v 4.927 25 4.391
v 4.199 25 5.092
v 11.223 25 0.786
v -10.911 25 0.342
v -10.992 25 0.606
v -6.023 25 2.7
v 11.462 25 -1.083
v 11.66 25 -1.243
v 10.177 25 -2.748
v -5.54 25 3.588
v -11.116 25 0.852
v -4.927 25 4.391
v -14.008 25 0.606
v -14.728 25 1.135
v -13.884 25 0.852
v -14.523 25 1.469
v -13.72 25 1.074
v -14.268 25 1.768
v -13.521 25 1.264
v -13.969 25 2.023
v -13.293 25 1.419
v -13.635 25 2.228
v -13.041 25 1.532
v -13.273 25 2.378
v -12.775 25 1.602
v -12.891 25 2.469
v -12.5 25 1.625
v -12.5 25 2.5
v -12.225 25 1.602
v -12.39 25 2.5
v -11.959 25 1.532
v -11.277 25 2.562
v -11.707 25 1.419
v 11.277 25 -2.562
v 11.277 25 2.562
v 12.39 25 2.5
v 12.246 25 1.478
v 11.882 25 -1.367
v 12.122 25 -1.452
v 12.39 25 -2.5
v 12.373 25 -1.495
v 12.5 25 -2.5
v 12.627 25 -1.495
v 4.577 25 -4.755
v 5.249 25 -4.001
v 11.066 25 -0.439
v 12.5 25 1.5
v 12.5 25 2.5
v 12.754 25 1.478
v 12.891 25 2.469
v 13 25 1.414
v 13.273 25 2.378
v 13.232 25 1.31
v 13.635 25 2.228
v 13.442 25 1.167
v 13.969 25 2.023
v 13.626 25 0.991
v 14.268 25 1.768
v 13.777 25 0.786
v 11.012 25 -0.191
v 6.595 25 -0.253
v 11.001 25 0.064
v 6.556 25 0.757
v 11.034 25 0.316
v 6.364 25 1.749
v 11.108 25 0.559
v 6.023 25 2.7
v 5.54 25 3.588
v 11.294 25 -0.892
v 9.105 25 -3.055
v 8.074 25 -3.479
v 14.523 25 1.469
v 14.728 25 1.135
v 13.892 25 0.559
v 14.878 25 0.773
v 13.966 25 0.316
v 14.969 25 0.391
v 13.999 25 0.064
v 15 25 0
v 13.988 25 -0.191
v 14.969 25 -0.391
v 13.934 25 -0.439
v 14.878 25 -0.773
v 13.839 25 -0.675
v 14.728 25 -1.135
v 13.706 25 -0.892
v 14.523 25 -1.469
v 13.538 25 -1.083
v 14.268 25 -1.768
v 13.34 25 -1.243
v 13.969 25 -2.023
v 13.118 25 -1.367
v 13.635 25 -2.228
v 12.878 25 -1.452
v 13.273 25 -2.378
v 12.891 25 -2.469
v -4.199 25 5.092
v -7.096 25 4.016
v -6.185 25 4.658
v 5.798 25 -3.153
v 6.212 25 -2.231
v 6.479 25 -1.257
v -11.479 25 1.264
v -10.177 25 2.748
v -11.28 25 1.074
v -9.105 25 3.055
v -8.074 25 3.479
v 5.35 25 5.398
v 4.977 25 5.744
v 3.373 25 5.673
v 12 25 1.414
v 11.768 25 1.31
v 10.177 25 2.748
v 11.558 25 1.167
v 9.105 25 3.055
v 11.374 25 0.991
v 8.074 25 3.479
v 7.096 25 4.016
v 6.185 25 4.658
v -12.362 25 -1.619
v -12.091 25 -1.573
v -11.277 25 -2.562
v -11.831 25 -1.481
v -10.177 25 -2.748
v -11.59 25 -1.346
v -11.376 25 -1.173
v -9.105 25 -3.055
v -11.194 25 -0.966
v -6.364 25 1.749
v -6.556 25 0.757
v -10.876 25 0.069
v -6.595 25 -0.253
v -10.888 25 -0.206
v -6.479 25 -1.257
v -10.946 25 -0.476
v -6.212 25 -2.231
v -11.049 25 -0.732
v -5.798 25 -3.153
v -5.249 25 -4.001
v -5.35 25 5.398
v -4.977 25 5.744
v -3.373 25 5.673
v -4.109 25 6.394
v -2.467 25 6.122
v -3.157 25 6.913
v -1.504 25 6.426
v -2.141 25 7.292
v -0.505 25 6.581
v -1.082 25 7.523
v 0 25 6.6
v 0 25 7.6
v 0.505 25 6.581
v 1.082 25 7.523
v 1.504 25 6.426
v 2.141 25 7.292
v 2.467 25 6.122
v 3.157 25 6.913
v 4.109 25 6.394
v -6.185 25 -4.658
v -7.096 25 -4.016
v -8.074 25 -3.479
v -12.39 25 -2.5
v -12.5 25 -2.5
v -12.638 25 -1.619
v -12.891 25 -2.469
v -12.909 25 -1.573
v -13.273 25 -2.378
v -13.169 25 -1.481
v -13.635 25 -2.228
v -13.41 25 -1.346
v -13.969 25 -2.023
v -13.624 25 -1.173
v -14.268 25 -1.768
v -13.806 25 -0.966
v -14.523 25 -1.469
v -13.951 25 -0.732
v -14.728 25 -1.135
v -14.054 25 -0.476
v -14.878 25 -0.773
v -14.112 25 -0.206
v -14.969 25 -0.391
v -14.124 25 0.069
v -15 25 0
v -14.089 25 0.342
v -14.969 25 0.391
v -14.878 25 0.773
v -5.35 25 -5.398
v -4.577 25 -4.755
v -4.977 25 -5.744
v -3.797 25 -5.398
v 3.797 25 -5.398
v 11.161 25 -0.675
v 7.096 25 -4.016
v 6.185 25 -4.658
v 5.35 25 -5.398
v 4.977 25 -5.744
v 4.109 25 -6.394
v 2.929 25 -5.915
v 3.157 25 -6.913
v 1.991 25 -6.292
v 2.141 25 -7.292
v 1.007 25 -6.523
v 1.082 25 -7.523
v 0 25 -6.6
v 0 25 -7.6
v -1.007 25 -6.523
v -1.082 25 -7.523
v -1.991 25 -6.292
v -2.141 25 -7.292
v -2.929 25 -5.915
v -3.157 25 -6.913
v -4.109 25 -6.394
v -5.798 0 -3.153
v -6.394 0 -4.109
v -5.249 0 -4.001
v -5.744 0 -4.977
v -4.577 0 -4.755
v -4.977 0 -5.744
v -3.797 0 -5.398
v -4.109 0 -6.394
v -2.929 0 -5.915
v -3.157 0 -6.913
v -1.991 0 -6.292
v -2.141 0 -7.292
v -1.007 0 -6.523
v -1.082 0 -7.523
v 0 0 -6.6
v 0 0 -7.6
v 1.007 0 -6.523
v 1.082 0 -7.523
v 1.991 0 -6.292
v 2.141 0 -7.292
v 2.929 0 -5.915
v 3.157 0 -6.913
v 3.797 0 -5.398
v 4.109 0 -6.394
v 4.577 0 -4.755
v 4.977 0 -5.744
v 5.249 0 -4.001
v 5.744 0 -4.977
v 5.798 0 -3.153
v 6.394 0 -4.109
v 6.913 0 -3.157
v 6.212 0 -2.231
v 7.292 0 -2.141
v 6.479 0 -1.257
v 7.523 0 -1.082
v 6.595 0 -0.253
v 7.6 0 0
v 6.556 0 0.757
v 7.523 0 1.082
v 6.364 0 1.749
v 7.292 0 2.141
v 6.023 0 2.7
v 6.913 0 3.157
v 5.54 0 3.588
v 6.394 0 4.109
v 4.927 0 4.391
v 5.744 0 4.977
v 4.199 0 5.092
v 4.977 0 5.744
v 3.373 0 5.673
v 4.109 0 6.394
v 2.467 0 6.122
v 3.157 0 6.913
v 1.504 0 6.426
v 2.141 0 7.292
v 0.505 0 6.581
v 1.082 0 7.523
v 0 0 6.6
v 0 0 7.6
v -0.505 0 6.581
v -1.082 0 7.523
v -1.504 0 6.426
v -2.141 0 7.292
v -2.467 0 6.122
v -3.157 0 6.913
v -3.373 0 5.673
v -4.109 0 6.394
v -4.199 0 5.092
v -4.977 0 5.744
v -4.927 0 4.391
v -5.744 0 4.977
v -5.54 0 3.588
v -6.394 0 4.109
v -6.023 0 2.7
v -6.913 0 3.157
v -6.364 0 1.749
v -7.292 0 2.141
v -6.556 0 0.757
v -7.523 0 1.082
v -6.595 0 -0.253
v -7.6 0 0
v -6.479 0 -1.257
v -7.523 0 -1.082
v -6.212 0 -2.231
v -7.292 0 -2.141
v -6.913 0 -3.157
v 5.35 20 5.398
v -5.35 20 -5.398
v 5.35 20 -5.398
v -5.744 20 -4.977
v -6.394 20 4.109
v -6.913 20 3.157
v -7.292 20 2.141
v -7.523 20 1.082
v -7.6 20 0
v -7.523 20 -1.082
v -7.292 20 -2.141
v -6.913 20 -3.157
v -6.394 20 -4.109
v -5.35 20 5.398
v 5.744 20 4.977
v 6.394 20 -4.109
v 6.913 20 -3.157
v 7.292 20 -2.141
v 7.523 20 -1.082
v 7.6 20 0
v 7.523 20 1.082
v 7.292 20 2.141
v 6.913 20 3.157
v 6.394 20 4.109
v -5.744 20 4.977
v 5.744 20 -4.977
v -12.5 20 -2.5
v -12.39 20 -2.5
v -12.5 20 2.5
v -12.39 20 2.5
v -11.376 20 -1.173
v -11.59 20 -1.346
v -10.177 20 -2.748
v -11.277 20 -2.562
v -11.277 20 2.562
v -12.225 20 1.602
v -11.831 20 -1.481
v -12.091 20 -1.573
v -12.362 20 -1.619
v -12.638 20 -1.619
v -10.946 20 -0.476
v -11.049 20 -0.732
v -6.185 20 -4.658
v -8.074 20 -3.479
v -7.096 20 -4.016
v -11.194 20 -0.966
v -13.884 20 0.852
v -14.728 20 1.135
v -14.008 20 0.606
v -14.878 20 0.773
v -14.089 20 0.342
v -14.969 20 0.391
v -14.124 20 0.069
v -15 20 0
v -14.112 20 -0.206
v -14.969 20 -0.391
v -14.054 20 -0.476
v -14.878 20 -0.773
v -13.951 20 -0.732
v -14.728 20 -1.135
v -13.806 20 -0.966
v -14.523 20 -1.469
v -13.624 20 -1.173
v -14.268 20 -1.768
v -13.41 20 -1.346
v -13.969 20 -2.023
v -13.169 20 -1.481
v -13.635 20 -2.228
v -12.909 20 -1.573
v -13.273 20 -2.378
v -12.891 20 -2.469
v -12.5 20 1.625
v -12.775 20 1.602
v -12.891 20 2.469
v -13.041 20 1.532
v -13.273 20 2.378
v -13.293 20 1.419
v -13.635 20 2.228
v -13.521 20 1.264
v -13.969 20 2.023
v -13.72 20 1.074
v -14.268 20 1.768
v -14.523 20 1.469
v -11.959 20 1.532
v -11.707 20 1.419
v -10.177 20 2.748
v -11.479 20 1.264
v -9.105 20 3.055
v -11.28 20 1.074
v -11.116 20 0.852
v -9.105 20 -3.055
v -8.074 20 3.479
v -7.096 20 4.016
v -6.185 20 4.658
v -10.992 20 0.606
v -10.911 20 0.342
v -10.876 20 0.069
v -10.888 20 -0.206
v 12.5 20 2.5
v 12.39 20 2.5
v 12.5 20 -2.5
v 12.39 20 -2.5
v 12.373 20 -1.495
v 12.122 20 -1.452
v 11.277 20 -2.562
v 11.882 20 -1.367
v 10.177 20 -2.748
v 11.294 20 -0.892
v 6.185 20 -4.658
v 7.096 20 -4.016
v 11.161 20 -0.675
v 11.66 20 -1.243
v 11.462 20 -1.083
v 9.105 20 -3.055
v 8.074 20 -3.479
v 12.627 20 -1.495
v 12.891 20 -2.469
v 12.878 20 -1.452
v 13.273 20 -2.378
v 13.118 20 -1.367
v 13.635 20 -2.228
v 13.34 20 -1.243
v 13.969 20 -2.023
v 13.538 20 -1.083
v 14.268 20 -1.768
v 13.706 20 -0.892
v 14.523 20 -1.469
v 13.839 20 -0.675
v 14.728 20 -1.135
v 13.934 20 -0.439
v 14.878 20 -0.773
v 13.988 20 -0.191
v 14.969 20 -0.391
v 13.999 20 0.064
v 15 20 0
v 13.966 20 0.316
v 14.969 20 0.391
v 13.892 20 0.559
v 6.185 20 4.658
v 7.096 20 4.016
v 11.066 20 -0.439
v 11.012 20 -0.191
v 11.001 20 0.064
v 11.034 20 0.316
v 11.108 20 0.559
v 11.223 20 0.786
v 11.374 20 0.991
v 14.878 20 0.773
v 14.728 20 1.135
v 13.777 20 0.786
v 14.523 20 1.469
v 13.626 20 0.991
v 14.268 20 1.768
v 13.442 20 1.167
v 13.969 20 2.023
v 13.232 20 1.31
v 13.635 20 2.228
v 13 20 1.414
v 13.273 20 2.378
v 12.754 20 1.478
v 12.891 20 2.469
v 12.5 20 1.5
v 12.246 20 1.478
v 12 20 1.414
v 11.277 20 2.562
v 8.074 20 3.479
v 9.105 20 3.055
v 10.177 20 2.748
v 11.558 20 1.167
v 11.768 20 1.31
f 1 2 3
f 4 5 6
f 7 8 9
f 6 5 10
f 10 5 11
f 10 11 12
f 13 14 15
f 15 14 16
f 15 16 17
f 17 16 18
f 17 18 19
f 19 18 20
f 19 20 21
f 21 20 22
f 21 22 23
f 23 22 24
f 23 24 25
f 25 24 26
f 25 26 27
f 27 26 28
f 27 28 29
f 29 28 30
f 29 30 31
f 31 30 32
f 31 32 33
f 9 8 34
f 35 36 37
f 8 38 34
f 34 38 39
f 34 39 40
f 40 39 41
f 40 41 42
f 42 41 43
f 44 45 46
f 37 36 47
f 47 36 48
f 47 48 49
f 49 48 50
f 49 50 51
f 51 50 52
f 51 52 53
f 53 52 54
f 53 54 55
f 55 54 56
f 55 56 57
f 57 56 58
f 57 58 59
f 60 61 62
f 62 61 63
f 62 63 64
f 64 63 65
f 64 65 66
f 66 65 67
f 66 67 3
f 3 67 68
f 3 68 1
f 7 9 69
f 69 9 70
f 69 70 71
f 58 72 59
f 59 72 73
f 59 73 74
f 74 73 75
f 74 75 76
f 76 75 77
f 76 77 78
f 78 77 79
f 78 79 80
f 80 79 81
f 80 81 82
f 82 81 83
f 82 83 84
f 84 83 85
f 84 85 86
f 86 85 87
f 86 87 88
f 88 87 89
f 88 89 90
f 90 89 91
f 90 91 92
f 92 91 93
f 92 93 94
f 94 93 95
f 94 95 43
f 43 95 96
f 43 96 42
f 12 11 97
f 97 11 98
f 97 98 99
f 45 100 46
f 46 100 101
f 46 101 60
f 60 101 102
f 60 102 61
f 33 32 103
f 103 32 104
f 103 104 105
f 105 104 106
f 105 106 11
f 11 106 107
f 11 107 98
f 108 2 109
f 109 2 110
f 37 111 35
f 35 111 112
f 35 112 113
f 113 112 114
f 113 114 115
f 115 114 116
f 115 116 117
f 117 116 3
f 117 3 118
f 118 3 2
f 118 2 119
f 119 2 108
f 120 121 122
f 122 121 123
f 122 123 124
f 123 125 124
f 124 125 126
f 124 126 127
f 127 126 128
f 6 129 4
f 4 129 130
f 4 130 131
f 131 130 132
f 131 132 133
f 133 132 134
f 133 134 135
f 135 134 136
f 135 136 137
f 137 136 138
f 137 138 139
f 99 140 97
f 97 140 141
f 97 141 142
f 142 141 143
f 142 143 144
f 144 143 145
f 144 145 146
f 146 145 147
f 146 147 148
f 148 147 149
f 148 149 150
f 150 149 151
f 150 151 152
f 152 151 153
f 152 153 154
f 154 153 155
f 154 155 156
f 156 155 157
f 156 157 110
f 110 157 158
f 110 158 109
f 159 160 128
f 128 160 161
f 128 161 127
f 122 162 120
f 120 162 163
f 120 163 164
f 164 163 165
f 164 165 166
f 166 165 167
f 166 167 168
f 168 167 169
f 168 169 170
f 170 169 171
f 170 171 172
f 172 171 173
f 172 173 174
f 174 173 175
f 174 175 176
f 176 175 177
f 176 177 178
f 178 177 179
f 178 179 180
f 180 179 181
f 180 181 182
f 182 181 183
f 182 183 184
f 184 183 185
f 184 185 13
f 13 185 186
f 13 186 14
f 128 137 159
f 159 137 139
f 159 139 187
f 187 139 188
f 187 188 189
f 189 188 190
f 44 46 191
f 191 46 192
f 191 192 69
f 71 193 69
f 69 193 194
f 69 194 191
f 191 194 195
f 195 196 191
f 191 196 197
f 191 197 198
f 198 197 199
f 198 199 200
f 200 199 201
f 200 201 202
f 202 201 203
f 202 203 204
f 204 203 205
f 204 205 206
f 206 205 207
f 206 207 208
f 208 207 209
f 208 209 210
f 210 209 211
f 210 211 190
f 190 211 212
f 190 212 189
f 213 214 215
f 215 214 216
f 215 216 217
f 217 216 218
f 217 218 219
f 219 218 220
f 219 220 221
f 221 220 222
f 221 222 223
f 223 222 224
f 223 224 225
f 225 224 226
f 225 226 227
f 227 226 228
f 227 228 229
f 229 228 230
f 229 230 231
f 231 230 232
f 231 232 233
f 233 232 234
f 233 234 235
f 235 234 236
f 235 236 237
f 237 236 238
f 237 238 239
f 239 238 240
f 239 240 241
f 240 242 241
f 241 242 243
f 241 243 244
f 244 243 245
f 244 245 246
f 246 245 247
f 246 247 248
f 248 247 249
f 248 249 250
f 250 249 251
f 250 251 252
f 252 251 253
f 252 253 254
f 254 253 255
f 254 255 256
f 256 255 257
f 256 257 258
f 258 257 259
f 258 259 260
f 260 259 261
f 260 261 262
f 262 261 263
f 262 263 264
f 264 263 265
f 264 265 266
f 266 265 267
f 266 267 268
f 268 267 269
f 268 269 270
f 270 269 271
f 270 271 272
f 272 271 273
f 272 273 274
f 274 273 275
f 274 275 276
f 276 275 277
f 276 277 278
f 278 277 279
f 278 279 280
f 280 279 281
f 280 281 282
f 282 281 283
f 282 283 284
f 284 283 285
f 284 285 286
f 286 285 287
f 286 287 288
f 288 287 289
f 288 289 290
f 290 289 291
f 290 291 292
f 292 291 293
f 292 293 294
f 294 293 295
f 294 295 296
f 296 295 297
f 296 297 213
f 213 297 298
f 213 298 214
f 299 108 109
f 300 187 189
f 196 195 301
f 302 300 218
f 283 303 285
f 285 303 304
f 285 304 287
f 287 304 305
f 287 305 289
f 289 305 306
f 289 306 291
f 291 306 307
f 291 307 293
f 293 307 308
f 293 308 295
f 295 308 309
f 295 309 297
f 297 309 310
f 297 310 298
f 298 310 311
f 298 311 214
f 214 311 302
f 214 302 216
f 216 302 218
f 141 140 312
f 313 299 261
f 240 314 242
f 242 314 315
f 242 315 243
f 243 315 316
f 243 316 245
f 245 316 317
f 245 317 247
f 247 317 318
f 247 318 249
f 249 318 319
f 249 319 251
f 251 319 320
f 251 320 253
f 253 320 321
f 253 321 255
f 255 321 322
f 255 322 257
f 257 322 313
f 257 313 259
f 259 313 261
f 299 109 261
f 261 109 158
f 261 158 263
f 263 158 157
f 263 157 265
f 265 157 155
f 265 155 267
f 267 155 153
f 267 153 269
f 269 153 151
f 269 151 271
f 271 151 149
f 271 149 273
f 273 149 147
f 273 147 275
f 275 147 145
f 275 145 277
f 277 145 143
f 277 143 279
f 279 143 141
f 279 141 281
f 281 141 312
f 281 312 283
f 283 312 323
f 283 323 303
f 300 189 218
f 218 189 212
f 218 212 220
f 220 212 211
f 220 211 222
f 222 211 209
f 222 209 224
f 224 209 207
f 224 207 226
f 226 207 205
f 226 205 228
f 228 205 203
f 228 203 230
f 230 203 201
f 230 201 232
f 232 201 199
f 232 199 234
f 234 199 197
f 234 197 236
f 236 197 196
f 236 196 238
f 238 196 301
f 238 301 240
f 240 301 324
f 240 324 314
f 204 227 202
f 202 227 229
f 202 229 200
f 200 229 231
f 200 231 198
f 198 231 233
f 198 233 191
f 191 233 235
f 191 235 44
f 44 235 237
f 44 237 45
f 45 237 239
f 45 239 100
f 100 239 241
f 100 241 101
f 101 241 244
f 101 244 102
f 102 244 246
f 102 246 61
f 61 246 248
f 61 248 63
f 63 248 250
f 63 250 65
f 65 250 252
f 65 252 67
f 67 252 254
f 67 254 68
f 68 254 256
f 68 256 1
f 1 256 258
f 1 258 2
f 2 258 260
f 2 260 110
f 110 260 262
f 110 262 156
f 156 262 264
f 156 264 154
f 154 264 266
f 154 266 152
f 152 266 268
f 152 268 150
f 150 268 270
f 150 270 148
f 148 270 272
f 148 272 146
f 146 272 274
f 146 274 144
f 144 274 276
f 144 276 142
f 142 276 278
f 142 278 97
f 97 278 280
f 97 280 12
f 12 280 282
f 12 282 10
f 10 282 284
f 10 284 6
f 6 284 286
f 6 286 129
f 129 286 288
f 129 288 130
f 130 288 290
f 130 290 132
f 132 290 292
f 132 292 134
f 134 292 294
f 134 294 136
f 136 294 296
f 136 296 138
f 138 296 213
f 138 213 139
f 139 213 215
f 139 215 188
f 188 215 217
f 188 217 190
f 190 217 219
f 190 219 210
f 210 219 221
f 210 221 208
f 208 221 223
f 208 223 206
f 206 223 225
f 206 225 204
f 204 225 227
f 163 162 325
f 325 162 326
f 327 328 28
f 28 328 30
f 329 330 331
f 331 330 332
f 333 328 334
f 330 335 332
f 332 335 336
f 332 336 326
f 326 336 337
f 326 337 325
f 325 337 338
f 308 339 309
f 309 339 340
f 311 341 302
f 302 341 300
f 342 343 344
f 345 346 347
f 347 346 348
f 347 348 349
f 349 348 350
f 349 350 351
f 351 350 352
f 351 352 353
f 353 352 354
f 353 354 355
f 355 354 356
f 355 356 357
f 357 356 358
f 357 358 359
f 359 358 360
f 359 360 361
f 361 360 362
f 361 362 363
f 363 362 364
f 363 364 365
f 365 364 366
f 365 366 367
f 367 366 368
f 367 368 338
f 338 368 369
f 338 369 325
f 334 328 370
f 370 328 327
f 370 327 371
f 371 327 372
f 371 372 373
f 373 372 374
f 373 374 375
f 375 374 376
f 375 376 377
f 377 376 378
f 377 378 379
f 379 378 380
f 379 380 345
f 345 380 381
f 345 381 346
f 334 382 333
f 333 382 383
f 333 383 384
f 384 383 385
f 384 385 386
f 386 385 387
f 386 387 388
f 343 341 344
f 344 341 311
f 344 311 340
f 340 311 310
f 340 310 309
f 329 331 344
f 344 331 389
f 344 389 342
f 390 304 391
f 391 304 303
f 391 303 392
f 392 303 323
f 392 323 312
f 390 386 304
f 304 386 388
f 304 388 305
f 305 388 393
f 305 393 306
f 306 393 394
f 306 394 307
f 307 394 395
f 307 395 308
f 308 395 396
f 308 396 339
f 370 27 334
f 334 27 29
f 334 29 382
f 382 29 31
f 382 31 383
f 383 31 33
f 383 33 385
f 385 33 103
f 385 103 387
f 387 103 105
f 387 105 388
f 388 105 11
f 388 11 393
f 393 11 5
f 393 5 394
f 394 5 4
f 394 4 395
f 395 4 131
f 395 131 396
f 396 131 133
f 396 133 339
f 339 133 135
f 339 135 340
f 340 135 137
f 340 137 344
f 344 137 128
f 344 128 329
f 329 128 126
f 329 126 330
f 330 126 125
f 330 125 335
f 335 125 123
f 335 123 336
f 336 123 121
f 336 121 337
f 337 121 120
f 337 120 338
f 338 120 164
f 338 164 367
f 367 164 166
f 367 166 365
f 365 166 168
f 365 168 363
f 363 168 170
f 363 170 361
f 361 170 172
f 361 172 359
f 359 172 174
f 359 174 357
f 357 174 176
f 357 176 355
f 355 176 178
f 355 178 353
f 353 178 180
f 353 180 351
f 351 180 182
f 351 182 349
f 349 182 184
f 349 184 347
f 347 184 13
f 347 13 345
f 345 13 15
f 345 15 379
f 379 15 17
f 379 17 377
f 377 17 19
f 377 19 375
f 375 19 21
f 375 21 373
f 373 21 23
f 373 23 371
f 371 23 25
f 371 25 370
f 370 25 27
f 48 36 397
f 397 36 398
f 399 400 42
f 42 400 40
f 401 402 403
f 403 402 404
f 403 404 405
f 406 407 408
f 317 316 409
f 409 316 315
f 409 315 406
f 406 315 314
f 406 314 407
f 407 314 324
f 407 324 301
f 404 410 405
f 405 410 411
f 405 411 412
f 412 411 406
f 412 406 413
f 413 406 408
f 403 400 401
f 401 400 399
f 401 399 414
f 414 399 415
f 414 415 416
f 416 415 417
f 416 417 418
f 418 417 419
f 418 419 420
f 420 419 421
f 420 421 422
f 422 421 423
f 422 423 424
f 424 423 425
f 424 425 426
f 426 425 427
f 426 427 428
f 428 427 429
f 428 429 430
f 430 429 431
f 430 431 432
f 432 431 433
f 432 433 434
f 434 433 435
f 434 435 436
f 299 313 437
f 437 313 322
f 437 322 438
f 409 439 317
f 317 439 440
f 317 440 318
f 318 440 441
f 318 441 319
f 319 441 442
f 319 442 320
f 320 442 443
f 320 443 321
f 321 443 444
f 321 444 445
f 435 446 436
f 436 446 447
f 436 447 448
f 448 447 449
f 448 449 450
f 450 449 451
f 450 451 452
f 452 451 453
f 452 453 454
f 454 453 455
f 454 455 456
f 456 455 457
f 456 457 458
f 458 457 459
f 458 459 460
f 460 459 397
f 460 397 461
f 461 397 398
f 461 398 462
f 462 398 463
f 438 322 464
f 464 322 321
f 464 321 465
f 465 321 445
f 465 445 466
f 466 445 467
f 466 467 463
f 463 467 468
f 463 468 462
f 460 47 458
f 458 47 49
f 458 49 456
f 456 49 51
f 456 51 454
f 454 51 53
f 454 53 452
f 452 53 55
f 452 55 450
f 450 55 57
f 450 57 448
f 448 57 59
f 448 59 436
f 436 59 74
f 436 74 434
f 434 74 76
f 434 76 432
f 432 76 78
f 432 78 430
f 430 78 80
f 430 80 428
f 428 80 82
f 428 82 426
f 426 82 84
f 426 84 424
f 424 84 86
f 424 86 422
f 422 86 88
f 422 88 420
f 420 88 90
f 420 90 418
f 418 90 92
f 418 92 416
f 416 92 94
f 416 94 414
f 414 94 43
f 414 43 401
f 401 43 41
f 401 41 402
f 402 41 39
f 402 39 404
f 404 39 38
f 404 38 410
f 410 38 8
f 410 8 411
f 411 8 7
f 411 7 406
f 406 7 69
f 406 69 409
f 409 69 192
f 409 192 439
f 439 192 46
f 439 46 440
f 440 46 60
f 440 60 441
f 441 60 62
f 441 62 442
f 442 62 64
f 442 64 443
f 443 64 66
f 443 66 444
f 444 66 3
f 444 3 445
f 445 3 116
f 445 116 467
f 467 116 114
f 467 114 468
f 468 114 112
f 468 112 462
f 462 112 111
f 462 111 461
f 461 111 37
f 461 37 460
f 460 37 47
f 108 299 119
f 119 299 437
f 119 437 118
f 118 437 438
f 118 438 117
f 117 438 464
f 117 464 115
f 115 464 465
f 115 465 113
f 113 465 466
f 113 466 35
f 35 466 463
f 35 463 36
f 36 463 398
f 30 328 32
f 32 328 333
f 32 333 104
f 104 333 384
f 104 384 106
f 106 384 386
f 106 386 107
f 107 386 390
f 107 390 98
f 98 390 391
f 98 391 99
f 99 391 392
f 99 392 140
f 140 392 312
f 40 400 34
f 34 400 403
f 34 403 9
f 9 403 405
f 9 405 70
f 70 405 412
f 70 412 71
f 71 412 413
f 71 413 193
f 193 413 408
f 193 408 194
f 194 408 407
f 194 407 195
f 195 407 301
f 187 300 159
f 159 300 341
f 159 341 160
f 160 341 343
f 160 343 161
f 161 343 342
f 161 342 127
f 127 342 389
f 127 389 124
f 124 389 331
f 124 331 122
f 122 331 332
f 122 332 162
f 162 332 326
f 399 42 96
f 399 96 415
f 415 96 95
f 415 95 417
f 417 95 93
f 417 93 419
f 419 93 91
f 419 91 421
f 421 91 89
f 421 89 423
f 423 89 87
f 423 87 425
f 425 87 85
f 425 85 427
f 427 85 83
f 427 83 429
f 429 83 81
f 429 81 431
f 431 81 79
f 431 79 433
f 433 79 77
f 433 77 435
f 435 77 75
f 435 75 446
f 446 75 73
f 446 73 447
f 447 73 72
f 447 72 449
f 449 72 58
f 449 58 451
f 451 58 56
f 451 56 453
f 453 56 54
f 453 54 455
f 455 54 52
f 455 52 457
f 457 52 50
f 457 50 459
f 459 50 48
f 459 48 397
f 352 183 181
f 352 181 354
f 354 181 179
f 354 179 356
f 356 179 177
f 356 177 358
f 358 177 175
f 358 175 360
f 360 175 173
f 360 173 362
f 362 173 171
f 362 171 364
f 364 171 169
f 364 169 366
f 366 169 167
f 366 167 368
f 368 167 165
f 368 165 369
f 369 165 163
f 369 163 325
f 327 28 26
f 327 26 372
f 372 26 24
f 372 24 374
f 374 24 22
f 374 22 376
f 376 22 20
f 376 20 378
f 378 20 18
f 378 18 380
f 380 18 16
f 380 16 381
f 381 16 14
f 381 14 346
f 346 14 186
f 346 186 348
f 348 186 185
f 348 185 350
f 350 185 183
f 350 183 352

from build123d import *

# Parameters (mm, degrees)
SKETCH1_R           = 7.6
SKETCH1_R_2         = 6.6
BOSS_EXTRUDE1_DEPTH = 25
BOSS_EXTRUDE2_START = -5
SKETCH2_R           = 1.625
SKETCH2_R_2         = 1.5
BOSS_EXTRUDE2_DEPTH = 5
FILLET1_R           = 10
FILLET2_R           = 2.5


with BuildPart() as part:
    # Sketch1 → Boss-Extrude1 (new body)
    with BuildSketch(Plane(origin=(0, 0, 0), x_dir=(1, 0, 0), z_dir=(0, 1, 0))):
        with Locations(Location((0, 0, 0), (0, 0, 270))):
            Circle(SKETCH1_R)
        with Locations(Location((0, 0, 0), (0, 0, 270))):
            Circle(SKETCH1_R_2, mode=Mode.SUBTRACT)
    extrude(amount=BOSS_EXTRUDE1_DEPTH)

    # Sketch2 → Boss-Extrude2 (add)
    # profile 1 of 2: a face of its own
    with BuildSketch(Plane(origin=(0, 25, 0), x_dir=(1, 0, 0), z_dir=(0, 1, 0)).offset(BOSS_EXTRUDE2_START)):
        with BuildLine():
            Line((-6.108191222, 2.5), (-15, 2.5))
            Line((-15, 2.5), (-15, -2.5))
            Line((-15, -2.5), (-6.108191222, -2.5))
            ThreePointArc((-6.108191222, -2.5), (-6.6, 0), (-6.108191222, 2.5))
        make_face()
        with Locations(Location((-12.5, 0, 0), (0, 0, 270))):
            Circle(SKETCH2_R, mode=Mode.SUBTRACT)
    # profile 2 of 2: a face of its own
    with BuildSketch(Plane(origin=(0, 25, 0), x_dir=(1, 0, 0), z_dir=(0, 1, 0)).offset(BOSS_EXTRUDE2_START)):
        with BuildLine():
            Line((15, -2.5), (6.108191222, -2.5))
            ThreePointArc((6.108191222, -2.5), (6.6, 0), (6.108191222, 2.5))
            Line((6.108191222, 2.5), (15, 2.5))
            Line((15, 2.5), (15, -2.5))
        make_face()
        with Locations(Location((12.5, 0, 0), (0, 0, 270))):
            Circle(SKETCH2_R_2, mode=Mode.SUBTRACT)
    extrude(amount=BOSS_EXTRUDE2_DEPTH)

    # Fillet1
    fillet1_edges = [part.edges().sort_by_distance(p)[0] for p in [
        (-7.177046746, 22.5, -2.5),
        (-7.177046746, 22.5, 2.5),
        (7.177046746, 22.5, 2.5),
        (7.177046746, 22.5, -2.5),
    ]]
    fillet(fillet1_edges, radius=FILLET1_R)

    # Fillet2
    fillet2_edges = [part.edges().sort_by_distance(p)[0] for p in [
        (15, 22.5, 2.5),
        (15, 22.5, -2.5),
        (-15, 22.5, 2.5),
        (-15, 22.5, -2.5),
    ]]
    fillet(fillet2_edges, radius=FILLET2_R - 0.0001)  # a hair under: the kernel refuses the full size


solid = part.part
